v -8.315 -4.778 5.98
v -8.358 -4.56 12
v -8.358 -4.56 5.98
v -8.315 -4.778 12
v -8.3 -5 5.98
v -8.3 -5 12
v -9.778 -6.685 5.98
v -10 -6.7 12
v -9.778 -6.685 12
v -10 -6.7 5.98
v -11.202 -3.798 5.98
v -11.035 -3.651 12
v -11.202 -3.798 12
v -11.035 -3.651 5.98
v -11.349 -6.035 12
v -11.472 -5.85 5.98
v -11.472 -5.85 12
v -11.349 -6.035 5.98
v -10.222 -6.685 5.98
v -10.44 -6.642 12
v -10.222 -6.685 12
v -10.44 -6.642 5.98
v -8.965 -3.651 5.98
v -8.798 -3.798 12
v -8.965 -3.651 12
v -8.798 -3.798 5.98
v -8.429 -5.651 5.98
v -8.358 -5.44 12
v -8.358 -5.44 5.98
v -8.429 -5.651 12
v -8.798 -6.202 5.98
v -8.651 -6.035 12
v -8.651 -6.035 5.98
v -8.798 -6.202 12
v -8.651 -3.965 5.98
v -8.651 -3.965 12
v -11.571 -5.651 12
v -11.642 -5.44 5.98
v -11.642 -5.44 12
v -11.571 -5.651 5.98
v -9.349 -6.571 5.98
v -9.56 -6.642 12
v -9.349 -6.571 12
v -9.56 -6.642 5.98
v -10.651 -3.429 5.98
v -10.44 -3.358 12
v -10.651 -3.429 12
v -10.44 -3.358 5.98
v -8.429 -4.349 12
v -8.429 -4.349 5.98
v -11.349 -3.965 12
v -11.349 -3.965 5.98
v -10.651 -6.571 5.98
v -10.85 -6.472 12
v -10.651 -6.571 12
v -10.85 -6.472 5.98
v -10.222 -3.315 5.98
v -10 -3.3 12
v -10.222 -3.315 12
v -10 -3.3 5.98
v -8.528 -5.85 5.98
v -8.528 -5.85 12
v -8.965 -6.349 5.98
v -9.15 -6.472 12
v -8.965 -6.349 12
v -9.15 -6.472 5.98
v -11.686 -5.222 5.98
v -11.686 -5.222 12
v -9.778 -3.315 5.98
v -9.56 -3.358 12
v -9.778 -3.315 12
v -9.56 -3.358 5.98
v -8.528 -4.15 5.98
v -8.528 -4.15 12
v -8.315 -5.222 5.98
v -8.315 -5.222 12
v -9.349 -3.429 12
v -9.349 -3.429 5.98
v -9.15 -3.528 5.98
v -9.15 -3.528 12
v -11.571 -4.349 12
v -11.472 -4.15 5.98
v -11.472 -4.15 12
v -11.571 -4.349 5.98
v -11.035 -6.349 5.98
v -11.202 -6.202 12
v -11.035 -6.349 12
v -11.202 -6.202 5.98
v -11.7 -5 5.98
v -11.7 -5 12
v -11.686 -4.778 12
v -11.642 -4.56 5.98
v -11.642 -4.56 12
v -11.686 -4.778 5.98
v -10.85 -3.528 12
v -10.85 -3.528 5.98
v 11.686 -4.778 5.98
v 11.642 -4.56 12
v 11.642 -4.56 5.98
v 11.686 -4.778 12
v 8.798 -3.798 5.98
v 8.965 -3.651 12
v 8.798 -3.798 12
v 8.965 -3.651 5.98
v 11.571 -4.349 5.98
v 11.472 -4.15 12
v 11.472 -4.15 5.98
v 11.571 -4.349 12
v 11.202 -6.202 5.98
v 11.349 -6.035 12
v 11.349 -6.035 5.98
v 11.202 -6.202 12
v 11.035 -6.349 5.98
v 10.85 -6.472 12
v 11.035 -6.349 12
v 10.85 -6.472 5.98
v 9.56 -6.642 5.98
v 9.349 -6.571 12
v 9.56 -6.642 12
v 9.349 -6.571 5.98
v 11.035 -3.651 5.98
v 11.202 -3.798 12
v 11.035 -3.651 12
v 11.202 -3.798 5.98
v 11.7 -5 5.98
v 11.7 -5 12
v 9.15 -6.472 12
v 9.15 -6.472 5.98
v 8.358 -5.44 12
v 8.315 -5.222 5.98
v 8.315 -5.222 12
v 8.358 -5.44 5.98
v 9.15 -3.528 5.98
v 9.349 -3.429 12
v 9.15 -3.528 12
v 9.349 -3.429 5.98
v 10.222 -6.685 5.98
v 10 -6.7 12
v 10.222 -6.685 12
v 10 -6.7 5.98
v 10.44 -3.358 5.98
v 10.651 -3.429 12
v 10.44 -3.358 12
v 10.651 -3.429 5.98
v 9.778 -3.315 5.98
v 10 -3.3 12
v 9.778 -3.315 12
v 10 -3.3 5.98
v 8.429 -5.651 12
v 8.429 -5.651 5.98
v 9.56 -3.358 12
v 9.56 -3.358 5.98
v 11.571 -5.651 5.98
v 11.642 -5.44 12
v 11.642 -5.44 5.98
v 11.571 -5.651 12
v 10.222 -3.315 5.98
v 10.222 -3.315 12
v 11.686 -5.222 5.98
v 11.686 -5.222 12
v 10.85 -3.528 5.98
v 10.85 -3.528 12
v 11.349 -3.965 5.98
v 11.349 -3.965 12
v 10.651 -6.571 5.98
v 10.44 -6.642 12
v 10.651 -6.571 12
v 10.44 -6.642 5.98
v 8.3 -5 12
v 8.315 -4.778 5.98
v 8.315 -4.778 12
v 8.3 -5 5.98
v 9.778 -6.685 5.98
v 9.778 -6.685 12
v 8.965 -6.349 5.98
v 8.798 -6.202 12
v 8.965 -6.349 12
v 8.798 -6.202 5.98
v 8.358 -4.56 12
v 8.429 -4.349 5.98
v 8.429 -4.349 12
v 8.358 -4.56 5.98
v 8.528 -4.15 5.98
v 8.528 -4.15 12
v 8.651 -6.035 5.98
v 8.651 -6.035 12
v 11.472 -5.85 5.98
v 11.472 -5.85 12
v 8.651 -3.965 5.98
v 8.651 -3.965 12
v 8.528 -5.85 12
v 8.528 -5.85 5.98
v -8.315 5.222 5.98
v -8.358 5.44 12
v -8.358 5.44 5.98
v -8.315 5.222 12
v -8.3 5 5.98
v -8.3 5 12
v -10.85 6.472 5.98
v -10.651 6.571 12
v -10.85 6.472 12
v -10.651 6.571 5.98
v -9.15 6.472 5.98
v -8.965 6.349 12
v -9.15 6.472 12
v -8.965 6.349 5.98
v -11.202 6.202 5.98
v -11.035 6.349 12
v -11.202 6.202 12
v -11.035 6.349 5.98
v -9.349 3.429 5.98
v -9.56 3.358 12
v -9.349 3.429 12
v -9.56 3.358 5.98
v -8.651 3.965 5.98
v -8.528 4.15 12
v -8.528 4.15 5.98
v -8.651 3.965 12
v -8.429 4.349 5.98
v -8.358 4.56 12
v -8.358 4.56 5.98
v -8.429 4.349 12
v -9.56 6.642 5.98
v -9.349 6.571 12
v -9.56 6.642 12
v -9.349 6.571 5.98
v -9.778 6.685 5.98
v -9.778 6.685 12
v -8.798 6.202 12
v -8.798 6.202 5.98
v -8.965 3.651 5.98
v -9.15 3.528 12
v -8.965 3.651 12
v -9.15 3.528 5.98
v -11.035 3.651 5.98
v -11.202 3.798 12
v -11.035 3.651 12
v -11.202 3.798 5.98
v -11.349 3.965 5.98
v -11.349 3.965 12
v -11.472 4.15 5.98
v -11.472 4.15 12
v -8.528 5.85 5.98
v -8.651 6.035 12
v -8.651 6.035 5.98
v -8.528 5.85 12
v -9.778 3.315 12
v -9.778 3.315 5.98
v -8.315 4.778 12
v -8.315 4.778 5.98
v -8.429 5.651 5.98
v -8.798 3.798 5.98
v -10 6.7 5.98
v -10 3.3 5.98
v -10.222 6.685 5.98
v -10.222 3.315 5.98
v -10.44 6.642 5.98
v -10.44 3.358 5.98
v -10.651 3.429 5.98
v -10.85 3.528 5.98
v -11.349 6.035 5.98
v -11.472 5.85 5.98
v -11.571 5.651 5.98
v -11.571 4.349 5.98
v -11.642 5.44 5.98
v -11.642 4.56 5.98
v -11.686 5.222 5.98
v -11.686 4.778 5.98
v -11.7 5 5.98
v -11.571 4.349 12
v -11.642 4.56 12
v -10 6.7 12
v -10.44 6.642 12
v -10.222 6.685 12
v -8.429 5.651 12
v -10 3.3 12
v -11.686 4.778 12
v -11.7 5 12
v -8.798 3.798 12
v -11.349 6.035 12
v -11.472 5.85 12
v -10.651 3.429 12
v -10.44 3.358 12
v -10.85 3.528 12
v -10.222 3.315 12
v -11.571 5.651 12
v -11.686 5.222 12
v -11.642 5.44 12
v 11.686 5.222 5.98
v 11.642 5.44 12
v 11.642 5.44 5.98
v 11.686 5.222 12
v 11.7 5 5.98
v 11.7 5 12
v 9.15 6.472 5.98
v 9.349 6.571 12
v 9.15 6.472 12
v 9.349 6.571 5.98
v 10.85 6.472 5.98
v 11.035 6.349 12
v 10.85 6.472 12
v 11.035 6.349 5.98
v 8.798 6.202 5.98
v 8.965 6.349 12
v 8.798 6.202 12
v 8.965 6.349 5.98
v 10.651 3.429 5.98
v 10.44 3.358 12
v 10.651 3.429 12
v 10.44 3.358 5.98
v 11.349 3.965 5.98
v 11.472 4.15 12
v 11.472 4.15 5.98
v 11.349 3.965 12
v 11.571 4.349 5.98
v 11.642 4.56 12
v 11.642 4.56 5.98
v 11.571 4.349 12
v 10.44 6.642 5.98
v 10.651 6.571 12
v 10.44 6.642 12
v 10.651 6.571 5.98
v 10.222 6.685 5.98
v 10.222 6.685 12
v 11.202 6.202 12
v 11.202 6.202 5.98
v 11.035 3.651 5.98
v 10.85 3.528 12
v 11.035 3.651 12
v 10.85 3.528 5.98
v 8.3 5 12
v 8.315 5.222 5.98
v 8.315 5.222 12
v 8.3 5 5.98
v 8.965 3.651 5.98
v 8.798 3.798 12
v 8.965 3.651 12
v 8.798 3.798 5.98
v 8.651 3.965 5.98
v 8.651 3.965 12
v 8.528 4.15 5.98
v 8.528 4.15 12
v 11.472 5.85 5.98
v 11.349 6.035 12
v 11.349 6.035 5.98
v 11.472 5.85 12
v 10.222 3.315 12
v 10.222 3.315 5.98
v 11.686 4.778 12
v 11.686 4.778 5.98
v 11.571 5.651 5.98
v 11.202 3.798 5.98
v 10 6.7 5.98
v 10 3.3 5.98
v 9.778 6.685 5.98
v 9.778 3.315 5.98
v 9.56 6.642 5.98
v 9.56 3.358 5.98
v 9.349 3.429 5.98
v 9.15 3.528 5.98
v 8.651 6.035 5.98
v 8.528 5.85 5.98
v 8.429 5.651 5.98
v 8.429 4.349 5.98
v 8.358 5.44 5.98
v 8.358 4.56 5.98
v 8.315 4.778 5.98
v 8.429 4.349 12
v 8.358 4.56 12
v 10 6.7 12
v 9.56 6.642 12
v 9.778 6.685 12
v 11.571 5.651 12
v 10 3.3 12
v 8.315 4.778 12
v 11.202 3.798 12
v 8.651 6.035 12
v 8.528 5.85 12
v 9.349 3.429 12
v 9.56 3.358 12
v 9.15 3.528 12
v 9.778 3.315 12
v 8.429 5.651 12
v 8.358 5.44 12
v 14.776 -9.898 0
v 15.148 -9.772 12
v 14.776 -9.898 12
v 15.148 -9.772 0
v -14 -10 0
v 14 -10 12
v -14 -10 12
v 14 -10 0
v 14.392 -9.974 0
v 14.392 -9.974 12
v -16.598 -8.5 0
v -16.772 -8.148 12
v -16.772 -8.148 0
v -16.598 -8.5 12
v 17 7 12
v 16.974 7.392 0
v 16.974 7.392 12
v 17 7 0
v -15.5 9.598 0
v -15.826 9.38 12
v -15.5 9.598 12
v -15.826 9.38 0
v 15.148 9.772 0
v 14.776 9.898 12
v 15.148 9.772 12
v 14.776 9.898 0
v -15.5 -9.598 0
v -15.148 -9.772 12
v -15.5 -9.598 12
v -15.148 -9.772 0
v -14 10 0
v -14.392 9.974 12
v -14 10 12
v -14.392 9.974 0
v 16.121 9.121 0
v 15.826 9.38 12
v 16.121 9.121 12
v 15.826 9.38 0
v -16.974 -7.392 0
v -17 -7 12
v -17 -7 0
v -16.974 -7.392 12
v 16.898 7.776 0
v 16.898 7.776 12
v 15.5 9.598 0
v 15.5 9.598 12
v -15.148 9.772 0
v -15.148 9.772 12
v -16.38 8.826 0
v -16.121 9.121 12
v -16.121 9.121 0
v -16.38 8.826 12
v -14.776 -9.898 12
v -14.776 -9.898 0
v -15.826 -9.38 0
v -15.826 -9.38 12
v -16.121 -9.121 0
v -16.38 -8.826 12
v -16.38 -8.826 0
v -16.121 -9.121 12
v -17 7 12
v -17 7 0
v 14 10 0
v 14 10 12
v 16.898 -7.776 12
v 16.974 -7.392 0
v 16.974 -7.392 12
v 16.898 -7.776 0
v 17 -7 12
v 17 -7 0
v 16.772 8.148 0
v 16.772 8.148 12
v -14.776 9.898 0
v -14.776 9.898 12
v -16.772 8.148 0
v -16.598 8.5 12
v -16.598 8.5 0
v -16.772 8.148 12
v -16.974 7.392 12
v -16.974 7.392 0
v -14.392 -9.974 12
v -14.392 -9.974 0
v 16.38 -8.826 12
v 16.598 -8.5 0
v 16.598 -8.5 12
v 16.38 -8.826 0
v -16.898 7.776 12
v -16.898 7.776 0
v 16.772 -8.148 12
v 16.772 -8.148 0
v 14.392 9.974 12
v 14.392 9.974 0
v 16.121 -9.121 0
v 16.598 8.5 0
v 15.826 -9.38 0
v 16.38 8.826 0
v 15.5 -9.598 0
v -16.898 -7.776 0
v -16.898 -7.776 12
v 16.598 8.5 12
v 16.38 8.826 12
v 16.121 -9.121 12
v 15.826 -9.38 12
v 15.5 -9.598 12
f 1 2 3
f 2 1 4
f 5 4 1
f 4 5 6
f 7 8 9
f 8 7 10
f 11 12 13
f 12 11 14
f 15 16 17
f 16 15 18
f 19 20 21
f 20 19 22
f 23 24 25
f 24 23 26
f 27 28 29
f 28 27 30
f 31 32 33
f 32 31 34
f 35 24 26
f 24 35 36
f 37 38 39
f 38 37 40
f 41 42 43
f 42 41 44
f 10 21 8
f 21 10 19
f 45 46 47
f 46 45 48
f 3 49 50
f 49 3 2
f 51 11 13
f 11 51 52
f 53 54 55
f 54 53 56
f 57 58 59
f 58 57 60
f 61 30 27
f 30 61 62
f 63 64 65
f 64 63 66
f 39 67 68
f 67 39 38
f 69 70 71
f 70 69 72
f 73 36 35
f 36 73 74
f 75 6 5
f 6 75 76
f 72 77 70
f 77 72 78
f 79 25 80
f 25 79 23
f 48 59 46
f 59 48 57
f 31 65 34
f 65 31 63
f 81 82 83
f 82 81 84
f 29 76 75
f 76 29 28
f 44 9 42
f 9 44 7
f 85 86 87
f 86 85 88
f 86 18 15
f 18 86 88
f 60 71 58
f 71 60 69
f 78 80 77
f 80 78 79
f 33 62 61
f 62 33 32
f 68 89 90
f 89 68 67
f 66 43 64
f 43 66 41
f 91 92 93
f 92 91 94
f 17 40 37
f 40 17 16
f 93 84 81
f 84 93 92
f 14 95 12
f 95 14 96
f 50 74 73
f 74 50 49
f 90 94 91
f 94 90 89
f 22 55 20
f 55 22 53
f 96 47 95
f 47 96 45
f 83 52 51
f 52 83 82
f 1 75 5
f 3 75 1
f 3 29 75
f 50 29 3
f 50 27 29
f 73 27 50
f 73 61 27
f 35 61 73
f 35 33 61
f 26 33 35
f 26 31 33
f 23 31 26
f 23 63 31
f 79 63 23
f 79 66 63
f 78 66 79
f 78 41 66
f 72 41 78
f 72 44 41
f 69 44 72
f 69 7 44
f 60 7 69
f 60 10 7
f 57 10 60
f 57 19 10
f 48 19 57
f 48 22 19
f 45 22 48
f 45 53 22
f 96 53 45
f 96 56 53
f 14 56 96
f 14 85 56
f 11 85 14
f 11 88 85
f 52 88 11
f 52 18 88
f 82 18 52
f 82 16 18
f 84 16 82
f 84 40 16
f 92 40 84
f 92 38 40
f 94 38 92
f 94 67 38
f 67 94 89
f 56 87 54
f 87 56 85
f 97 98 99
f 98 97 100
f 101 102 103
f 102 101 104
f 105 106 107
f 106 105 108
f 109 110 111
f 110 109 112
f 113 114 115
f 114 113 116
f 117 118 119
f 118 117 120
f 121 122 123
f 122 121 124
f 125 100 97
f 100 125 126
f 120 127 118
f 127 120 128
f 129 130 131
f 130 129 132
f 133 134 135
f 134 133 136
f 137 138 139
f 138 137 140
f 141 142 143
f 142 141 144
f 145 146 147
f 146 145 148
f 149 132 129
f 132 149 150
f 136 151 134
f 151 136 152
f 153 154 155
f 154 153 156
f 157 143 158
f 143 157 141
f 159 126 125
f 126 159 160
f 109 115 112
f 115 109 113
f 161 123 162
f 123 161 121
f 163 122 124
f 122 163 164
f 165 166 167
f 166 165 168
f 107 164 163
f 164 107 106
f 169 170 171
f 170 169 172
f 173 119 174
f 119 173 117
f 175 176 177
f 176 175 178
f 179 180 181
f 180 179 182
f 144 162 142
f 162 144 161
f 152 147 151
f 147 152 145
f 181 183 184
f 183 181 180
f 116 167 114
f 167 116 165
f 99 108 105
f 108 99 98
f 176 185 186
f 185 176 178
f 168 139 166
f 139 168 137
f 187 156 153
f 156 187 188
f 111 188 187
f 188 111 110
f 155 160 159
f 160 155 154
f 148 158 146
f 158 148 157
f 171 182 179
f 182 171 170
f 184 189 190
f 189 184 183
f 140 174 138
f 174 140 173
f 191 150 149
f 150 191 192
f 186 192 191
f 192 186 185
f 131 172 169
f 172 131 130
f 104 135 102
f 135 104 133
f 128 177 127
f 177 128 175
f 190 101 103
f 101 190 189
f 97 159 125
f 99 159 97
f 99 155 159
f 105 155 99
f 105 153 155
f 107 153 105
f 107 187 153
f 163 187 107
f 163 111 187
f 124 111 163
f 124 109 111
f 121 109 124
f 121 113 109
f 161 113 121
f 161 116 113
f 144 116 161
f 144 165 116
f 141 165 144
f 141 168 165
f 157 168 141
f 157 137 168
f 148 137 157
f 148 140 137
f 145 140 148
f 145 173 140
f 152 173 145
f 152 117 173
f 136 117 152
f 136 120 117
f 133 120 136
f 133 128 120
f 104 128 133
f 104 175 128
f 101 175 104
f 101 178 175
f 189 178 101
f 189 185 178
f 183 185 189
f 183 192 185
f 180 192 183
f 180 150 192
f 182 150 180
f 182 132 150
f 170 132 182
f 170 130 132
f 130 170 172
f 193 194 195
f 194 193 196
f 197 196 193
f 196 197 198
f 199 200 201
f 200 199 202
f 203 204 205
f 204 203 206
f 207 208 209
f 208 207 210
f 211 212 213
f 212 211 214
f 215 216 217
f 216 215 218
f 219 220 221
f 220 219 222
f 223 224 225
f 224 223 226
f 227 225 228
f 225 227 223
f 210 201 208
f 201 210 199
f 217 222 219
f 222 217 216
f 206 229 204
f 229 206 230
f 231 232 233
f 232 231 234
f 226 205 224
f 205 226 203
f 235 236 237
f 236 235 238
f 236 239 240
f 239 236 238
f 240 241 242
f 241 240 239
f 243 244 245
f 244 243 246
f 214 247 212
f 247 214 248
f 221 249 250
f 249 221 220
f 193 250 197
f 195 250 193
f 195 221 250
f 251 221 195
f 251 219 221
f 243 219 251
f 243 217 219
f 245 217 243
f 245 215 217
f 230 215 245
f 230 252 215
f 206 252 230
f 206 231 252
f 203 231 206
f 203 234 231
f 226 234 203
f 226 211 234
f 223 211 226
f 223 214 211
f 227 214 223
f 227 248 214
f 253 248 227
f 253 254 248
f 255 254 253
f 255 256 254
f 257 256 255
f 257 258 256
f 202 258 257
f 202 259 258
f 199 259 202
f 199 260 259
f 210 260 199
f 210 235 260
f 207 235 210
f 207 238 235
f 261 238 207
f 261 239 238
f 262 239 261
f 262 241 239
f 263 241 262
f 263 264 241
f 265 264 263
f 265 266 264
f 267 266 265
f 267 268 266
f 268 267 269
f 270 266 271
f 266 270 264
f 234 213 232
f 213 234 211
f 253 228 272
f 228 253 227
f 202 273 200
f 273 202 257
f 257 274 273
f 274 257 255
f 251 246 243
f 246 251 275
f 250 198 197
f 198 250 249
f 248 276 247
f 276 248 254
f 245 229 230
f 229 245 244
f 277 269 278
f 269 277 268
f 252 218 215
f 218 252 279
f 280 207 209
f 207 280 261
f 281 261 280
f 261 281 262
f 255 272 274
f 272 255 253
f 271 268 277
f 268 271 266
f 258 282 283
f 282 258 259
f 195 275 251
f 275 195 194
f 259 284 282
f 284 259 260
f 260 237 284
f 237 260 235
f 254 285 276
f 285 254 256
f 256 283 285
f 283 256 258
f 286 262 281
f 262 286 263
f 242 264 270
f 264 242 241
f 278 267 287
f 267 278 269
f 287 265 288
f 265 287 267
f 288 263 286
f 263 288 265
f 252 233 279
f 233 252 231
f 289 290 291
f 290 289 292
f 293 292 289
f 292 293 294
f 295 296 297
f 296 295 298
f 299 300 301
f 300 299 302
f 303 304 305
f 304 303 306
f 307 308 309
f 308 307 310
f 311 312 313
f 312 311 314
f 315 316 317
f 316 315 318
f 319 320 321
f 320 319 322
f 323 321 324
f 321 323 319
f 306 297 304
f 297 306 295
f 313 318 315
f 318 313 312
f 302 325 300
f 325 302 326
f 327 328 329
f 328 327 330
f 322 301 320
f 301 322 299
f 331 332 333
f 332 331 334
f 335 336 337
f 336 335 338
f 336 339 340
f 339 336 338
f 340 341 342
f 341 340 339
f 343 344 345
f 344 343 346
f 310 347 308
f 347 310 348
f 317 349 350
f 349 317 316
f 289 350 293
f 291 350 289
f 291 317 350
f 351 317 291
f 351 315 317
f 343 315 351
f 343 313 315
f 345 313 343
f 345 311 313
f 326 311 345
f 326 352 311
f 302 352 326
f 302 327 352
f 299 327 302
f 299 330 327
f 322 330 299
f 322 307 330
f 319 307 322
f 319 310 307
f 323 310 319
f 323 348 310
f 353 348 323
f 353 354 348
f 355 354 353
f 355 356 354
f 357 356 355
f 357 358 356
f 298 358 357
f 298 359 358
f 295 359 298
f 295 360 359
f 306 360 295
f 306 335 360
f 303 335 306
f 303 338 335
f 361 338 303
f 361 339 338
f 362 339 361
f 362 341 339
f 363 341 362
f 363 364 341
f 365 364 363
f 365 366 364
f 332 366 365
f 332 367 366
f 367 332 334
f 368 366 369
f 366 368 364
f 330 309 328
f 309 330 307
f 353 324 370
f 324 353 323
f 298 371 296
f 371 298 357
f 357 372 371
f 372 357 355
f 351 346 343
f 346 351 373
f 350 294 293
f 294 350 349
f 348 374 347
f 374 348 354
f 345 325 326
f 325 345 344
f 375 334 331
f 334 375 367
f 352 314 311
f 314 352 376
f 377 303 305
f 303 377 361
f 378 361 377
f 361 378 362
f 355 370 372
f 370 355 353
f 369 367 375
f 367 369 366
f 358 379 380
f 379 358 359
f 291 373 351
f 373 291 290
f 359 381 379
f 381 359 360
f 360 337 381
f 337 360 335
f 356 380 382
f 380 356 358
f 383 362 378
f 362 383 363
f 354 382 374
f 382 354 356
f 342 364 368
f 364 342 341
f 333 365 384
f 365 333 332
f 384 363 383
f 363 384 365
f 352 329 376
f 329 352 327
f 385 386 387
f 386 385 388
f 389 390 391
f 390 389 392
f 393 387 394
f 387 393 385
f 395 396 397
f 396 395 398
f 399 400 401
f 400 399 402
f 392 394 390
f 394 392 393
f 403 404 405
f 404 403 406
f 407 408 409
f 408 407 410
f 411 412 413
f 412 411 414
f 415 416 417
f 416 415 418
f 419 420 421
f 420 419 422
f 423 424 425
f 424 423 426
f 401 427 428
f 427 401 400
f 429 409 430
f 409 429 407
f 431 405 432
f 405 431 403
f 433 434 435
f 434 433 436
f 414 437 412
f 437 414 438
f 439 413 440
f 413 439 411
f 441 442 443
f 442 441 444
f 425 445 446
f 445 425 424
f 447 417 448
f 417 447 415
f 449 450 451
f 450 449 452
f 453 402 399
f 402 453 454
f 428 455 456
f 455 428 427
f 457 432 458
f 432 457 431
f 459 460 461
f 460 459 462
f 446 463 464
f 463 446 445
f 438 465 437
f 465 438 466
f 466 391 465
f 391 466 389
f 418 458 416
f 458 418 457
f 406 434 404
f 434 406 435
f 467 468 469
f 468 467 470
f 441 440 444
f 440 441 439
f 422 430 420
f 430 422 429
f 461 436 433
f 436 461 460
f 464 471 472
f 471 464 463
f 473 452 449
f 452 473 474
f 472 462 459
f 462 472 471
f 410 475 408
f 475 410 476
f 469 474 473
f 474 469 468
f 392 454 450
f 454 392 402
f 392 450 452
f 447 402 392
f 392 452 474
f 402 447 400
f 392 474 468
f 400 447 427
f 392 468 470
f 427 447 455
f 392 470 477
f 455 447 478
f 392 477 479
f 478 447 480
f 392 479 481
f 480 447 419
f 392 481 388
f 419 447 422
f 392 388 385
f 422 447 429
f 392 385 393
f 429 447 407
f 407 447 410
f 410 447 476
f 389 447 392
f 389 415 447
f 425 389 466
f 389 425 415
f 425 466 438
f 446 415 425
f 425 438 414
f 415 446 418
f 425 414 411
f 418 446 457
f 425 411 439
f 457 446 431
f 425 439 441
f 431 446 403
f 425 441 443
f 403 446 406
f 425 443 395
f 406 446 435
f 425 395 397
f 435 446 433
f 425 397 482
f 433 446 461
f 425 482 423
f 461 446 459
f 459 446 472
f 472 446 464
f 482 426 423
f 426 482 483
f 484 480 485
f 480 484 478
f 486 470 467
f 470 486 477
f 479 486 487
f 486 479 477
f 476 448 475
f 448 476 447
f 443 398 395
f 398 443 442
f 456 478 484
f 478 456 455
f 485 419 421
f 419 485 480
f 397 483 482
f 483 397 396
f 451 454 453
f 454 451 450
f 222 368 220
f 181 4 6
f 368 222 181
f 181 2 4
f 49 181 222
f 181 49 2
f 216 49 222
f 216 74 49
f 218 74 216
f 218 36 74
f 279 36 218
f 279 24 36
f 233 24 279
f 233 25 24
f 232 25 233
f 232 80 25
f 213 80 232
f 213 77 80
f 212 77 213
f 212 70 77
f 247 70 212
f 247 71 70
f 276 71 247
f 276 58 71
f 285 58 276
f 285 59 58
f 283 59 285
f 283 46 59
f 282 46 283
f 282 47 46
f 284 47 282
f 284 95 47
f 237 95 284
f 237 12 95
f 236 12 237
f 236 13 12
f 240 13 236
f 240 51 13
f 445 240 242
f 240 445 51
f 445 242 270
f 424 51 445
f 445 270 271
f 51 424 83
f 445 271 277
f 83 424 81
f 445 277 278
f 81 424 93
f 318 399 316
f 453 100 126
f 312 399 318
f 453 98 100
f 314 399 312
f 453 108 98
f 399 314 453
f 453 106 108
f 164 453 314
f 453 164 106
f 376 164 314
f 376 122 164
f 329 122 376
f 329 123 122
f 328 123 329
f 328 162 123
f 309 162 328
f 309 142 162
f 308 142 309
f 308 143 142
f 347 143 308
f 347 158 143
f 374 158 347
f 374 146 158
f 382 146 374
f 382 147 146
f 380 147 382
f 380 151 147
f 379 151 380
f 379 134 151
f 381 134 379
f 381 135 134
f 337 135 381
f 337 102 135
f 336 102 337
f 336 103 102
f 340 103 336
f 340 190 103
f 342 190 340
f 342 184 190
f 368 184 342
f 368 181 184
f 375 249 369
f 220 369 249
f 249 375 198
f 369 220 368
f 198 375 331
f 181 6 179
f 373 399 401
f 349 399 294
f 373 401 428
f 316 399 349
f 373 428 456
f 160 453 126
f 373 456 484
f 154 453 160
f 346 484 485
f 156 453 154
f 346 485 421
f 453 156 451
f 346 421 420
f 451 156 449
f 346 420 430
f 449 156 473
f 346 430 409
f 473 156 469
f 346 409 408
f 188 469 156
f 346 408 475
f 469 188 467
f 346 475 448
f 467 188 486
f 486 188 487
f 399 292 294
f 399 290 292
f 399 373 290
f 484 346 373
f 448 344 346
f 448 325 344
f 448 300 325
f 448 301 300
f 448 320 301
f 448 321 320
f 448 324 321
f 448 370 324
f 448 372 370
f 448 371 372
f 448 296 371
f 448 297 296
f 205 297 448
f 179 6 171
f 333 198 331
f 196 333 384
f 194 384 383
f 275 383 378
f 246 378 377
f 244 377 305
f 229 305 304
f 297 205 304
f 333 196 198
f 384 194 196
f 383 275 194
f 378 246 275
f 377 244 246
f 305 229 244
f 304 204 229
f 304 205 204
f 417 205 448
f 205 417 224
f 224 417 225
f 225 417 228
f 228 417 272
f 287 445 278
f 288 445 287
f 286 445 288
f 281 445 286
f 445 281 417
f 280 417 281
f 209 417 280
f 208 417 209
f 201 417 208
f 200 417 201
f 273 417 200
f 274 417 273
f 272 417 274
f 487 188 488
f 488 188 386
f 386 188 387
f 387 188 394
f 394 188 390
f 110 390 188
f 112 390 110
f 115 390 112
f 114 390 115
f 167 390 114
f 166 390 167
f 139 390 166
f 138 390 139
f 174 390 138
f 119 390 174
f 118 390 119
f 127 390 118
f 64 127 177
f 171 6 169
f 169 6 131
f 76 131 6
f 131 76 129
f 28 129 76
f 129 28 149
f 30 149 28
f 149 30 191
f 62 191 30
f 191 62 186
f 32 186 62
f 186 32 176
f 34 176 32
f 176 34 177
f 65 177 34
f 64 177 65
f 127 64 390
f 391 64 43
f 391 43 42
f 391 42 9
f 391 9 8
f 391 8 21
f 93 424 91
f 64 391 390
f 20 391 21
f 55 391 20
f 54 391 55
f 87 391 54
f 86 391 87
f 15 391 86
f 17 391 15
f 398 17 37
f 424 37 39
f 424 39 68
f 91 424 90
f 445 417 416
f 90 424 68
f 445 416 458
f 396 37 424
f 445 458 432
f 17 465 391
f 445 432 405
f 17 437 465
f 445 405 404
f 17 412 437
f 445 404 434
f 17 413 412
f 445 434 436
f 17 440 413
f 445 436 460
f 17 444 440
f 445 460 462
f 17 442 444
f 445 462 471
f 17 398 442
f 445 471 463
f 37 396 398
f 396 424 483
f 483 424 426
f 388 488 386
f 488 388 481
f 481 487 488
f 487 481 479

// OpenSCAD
PART = "upper_hinge_block_left";
include <../fielddeck.scad>;
